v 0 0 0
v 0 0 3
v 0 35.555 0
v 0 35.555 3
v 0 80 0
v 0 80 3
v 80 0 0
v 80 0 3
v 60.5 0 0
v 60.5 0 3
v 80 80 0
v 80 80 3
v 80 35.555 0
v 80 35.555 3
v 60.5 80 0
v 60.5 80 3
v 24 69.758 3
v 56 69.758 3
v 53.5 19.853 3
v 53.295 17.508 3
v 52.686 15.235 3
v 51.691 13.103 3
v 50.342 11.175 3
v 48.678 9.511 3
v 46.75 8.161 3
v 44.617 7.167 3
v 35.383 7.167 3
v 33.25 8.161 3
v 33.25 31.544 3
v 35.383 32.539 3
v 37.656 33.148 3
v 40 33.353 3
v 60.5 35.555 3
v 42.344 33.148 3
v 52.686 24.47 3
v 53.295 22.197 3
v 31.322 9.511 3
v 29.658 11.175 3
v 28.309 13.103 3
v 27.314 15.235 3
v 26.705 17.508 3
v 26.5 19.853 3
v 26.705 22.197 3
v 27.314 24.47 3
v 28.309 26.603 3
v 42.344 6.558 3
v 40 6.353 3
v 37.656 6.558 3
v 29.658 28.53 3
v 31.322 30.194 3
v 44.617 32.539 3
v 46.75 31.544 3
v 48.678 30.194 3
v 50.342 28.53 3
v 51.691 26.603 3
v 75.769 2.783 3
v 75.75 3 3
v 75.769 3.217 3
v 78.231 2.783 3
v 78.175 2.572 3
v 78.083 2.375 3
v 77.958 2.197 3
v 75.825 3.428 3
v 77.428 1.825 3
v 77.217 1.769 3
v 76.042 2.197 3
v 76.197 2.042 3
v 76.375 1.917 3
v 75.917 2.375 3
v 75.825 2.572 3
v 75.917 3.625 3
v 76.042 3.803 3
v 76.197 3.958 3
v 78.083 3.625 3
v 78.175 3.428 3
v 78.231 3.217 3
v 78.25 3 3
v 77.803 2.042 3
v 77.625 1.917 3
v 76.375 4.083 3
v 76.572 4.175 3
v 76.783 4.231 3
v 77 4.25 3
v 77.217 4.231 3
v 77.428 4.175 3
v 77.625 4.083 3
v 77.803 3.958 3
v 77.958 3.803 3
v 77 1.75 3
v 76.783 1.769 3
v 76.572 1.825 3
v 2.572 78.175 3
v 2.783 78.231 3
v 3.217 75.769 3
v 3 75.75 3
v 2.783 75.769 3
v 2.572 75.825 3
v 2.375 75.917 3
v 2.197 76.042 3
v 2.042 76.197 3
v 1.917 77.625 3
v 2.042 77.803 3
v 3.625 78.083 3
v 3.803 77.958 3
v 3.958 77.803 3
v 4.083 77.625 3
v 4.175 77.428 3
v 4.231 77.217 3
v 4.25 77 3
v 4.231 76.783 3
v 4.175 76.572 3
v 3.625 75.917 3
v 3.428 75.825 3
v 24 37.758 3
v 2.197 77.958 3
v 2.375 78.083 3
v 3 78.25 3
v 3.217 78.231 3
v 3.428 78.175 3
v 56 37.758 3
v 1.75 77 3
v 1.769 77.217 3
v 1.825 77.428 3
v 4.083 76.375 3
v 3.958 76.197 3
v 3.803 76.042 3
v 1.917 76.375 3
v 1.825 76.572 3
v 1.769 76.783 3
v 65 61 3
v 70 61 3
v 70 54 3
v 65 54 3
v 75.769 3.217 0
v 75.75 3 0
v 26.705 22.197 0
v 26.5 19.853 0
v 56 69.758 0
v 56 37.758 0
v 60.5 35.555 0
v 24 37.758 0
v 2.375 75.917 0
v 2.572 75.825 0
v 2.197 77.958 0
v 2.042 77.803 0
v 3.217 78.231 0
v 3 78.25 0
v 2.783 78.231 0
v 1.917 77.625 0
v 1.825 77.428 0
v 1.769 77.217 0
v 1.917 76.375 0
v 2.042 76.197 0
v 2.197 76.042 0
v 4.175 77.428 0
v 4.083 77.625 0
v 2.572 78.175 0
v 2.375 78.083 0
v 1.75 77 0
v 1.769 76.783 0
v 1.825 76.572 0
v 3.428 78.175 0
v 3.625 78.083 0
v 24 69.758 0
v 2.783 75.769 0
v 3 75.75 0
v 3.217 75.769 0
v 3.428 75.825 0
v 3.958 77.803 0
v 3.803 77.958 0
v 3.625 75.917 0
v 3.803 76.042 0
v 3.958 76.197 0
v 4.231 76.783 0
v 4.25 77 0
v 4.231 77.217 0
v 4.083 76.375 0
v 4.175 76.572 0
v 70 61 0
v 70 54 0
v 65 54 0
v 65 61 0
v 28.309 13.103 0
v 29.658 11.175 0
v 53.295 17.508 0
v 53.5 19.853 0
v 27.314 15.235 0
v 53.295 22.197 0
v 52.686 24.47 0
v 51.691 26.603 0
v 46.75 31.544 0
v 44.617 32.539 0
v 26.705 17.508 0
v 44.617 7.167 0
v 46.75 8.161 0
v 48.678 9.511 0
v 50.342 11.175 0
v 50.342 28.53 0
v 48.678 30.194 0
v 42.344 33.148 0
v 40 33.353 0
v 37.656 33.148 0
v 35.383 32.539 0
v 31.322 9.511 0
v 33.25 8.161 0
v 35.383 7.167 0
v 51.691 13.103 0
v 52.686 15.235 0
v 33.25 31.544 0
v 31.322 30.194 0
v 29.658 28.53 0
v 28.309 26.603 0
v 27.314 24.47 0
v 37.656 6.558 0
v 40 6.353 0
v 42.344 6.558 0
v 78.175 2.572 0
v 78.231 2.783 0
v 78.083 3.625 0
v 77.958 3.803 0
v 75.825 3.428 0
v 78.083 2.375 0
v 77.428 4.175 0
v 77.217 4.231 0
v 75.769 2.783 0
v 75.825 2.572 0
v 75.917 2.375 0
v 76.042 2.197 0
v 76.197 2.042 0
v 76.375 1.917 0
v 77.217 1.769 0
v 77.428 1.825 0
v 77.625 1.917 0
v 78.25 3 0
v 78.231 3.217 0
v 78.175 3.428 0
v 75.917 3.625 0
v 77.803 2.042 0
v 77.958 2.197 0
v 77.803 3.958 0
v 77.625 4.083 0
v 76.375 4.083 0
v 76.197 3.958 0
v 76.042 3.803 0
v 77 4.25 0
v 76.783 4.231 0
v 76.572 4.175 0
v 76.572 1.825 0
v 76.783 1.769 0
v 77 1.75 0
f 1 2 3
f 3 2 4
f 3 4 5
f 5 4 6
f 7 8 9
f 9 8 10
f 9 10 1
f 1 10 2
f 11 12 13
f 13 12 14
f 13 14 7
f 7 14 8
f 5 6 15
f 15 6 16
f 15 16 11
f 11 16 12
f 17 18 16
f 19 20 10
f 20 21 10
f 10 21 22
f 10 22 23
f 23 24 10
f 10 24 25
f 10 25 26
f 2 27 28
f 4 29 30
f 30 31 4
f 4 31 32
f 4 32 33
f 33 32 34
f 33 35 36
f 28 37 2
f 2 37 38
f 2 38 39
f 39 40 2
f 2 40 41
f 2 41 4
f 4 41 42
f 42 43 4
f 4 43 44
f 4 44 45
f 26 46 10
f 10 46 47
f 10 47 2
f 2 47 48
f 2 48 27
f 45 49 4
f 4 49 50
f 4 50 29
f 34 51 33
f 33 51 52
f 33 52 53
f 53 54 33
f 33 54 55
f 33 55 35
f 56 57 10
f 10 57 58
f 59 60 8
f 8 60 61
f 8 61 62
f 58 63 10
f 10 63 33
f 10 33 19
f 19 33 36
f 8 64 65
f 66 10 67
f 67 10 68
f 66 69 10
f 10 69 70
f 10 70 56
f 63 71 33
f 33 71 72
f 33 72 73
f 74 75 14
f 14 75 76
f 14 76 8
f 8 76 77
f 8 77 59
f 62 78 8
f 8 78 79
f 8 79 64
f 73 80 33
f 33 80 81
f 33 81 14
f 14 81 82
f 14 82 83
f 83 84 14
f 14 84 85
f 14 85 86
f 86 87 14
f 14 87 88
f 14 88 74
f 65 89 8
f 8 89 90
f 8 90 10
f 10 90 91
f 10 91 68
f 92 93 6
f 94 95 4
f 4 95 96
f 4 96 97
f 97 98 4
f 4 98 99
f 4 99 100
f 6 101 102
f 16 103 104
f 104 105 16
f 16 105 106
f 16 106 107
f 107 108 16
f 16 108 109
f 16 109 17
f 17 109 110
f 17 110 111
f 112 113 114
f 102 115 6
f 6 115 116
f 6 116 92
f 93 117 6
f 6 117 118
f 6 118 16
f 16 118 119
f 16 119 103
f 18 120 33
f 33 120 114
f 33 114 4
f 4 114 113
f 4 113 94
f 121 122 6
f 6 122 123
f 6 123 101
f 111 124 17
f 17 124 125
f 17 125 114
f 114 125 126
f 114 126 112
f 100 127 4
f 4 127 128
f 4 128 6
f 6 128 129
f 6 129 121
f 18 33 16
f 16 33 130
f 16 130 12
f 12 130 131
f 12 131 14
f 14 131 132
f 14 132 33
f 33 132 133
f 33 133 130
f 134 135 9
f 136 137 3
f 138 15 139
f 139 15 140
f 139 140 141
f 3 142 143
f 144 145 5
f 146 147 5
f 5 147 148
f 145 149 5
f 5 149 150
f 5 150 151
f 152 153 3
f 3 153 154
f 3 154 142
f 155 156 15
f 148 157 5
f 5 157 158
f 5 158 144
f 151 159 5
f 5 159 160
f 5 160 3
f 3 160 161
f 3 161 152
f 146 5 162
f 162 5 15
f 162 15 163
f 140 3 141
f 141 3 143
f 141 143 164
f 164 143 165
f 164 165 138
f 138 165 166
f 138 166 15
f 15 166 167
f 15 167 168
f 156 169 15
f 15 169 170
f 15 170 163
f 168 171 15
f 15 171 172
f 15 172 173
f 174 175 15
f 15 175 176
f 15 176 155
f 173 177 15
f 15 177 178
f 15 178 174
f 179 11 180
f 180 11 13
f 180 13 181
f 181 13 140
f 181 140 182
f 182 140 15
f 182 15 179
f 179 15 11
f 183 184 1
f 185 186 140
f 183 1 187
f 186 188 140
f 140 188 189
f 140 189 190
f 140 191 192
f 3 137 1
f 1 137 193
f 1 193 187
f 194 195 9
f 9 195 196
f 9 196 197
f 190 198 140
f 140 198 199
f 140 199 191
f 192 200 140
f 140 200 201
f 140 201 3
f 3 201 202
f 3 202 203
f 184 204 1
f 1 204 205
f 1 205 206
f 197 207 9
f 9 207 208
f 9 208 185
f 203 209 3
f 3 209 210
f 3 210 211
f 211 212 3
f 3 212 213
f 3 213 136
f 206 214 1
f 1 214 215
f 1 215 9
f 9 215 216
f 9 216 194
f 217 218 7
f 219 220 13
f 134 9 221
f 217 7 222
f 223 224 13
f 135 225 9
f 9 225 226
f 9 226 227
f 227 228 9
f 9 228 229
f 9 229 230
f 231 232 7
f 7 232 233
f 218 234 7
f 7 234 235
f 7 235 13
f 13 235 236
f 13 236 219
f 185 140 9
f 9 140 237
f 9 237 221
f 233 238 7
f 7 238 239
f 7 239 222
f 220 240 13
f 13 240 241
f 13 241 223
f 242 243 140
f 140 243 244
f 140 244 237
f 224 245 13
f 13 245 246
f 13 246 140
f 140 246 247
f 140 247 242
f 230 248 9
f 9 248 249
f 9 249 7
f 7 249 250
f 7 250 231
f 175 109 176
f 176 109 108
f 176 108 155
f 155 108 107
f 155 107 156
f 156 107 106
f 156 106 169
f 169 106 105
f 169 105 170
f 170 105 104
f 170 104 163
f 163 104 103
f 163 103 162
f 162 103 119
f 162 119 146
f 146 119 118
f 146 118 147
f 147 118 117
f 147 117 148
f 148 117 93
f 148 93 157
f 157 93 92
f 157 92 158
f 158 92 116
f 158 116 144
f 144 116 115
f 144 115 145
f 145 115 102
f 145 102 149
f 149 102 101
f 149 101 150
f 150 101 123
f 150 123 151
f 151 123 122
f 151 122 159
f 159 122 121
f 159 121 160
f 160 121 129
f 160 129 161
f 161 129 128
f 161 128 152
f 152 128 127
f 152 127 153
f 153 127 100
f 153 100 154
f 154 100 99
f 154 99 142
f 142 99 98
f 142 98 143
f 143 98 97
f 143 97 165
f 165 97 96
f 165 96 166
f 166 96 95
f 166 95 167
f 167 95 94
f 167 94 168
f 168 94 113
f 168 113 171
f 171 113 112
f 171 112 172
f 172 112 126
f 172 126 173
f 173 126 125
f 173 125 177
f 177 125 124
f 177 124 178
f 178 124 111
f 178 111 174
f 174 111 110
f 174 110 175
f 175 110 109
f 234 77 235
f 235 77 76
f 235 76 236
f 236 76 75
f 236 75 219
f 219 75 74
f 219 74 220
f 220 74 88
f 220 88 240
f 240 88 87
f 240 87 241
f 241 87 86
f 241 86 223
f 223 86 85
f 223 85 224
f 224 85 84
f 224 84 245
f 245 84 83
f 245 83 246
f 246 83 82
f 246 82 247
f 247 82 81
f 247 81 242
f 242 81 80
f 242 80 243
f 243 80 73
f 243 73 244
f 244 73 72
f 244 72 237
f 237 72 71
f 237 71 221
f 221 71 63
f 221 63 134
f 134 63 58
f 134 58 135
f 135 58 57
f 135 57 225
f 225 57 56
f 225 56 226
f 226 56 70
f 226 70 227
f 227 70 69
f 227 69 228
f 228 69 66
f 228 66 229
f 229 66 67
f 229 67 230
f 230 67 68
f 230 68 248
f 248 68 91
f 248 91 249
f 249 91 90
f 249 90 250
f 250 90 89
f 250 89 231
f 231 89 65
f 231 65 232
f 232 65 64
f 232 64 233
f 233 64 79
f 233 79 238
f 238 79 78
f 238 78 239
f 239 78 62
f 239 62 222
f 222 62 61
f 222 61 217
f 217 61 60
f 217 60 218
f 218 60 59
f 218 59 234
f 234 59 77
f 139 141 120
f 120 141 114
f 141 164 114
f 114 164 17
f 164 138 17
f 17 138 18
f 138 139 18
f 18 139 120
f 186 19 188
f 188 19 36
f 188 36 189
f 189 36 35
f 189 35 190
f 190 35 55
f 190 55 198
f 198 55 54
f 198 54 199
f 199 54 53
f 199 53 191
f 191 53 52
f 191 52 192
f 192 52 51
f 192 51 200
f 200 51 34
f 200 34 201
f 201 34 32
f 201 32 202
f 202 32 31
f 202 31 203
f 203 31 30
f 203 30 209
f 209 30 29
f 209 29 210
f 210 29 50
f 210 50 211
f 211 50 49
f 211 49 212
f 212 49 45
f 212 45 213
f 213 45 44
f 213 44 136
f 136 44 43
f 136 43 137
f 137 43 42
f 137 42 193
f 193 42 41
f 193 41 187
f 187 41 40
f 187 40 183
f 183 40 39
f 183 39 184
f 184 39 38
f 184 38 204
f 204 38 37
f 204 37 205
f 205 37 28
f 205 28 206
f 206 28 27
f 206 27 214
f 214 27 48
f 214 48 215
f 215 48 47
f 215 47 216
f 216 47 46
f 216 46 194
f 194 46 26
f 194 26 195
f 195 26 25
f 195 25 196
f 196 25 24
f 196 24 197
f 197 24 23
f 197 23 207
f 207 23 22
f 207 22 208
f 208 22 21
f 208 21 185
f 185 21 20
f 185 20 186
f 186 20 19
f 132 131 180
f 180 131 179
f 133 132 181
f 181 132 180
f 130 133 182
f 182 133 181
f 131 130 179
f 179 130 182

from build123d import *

# Parameters (mm, degrees)
SKETCH1_W           = 80
SKETCH1_H           = 80
BOSS_EXTRUDE1_DEPTH = 3
SKETCH2_R           = 1.25
CUT_EXTRUDE1_DEPTH  = 3
SKETCH3_R           = 1.25
CUT_EXTRUDE2_DEPTH  = 3
CUT_EXTRUDE3_DEPTH  = 3
SKETCH5_R           = 13.5
CUT_EXTRUDE4_DEPTH  = 3
CUT_EXTRUDE5_DEPTH  = 24


with BuildPart() as part:
    # Sketch1 → Boss-Extrude1 (new body)
    with BuildSketch(Plane.XY):
        with Locations((40, 40)):
            Rectangle(SKETCH1_W, SKETCH1_H)
    extrude(amount=BOSS_EXTRUDE1_DEPTH)

    # Sketch2 → Cut-Extrude1 (cut)
    with BuildSketch(Plane.XY.offset(3)):
        with Locations((3, 77)):
            Circle(SKETCH2_R)
    extrude(amount=-CUT_EXTRUDE1_DEPTH, mode=Mode.SUBTRACT)

    # Sketch3 → Cut-Extrude2 (cut)
    with BuildSketch(Plane.XY.offset(3)):
        with Locations((77, 3)):
            Circle(SKETCH3_R)
    extrude(amount=-CUT_EXTRUDE2_DEPTH, mode=Mode.SUBTRACT)

    # Sketch4 → Cut-Extrude3 (cut)
    with BuildSketch(Plane(origin=(0, 3.75760721, 3), x_dir=(1, 0, 0), z_dir=(0, 0, 1))):
        Polygon((40, 34), (56, 34), (56, 50), (56, 66), (40, 66), (24, 66), (24, 34), align=None)
    extrude(amount=-CUT_EXTRUDE3_DEPTH, mode=Mode.SUBTRACT)

    # Sketch5 → Cut-Extrude4 (cut)
    with BuildSketch(Plane(origin=(0, 0.849012918, 3), x_dir=(1, 0, 0), z_dir=(0, 0, 1))):
        with Locations((40, 19.003705046)):
            Circle(SKETCH5_R)
    extrude(amount=-CUT_EXTRUDE4_DEPTH, mode=Mode.SUBTRACT)

    # Sketch6 → Cut-Extrude5 (cut)
    with BuildSketch(Plane.XY.offset(3)):
        Polygon((70, 59), (70, 54), (65, 54), (65, 59), (65, 61), (70, 61), align=None)
    extrude(amount=-CUT_EXTRUDE5_DEPTH, mode=Mode.SUBTRACT)


solid = part.part
